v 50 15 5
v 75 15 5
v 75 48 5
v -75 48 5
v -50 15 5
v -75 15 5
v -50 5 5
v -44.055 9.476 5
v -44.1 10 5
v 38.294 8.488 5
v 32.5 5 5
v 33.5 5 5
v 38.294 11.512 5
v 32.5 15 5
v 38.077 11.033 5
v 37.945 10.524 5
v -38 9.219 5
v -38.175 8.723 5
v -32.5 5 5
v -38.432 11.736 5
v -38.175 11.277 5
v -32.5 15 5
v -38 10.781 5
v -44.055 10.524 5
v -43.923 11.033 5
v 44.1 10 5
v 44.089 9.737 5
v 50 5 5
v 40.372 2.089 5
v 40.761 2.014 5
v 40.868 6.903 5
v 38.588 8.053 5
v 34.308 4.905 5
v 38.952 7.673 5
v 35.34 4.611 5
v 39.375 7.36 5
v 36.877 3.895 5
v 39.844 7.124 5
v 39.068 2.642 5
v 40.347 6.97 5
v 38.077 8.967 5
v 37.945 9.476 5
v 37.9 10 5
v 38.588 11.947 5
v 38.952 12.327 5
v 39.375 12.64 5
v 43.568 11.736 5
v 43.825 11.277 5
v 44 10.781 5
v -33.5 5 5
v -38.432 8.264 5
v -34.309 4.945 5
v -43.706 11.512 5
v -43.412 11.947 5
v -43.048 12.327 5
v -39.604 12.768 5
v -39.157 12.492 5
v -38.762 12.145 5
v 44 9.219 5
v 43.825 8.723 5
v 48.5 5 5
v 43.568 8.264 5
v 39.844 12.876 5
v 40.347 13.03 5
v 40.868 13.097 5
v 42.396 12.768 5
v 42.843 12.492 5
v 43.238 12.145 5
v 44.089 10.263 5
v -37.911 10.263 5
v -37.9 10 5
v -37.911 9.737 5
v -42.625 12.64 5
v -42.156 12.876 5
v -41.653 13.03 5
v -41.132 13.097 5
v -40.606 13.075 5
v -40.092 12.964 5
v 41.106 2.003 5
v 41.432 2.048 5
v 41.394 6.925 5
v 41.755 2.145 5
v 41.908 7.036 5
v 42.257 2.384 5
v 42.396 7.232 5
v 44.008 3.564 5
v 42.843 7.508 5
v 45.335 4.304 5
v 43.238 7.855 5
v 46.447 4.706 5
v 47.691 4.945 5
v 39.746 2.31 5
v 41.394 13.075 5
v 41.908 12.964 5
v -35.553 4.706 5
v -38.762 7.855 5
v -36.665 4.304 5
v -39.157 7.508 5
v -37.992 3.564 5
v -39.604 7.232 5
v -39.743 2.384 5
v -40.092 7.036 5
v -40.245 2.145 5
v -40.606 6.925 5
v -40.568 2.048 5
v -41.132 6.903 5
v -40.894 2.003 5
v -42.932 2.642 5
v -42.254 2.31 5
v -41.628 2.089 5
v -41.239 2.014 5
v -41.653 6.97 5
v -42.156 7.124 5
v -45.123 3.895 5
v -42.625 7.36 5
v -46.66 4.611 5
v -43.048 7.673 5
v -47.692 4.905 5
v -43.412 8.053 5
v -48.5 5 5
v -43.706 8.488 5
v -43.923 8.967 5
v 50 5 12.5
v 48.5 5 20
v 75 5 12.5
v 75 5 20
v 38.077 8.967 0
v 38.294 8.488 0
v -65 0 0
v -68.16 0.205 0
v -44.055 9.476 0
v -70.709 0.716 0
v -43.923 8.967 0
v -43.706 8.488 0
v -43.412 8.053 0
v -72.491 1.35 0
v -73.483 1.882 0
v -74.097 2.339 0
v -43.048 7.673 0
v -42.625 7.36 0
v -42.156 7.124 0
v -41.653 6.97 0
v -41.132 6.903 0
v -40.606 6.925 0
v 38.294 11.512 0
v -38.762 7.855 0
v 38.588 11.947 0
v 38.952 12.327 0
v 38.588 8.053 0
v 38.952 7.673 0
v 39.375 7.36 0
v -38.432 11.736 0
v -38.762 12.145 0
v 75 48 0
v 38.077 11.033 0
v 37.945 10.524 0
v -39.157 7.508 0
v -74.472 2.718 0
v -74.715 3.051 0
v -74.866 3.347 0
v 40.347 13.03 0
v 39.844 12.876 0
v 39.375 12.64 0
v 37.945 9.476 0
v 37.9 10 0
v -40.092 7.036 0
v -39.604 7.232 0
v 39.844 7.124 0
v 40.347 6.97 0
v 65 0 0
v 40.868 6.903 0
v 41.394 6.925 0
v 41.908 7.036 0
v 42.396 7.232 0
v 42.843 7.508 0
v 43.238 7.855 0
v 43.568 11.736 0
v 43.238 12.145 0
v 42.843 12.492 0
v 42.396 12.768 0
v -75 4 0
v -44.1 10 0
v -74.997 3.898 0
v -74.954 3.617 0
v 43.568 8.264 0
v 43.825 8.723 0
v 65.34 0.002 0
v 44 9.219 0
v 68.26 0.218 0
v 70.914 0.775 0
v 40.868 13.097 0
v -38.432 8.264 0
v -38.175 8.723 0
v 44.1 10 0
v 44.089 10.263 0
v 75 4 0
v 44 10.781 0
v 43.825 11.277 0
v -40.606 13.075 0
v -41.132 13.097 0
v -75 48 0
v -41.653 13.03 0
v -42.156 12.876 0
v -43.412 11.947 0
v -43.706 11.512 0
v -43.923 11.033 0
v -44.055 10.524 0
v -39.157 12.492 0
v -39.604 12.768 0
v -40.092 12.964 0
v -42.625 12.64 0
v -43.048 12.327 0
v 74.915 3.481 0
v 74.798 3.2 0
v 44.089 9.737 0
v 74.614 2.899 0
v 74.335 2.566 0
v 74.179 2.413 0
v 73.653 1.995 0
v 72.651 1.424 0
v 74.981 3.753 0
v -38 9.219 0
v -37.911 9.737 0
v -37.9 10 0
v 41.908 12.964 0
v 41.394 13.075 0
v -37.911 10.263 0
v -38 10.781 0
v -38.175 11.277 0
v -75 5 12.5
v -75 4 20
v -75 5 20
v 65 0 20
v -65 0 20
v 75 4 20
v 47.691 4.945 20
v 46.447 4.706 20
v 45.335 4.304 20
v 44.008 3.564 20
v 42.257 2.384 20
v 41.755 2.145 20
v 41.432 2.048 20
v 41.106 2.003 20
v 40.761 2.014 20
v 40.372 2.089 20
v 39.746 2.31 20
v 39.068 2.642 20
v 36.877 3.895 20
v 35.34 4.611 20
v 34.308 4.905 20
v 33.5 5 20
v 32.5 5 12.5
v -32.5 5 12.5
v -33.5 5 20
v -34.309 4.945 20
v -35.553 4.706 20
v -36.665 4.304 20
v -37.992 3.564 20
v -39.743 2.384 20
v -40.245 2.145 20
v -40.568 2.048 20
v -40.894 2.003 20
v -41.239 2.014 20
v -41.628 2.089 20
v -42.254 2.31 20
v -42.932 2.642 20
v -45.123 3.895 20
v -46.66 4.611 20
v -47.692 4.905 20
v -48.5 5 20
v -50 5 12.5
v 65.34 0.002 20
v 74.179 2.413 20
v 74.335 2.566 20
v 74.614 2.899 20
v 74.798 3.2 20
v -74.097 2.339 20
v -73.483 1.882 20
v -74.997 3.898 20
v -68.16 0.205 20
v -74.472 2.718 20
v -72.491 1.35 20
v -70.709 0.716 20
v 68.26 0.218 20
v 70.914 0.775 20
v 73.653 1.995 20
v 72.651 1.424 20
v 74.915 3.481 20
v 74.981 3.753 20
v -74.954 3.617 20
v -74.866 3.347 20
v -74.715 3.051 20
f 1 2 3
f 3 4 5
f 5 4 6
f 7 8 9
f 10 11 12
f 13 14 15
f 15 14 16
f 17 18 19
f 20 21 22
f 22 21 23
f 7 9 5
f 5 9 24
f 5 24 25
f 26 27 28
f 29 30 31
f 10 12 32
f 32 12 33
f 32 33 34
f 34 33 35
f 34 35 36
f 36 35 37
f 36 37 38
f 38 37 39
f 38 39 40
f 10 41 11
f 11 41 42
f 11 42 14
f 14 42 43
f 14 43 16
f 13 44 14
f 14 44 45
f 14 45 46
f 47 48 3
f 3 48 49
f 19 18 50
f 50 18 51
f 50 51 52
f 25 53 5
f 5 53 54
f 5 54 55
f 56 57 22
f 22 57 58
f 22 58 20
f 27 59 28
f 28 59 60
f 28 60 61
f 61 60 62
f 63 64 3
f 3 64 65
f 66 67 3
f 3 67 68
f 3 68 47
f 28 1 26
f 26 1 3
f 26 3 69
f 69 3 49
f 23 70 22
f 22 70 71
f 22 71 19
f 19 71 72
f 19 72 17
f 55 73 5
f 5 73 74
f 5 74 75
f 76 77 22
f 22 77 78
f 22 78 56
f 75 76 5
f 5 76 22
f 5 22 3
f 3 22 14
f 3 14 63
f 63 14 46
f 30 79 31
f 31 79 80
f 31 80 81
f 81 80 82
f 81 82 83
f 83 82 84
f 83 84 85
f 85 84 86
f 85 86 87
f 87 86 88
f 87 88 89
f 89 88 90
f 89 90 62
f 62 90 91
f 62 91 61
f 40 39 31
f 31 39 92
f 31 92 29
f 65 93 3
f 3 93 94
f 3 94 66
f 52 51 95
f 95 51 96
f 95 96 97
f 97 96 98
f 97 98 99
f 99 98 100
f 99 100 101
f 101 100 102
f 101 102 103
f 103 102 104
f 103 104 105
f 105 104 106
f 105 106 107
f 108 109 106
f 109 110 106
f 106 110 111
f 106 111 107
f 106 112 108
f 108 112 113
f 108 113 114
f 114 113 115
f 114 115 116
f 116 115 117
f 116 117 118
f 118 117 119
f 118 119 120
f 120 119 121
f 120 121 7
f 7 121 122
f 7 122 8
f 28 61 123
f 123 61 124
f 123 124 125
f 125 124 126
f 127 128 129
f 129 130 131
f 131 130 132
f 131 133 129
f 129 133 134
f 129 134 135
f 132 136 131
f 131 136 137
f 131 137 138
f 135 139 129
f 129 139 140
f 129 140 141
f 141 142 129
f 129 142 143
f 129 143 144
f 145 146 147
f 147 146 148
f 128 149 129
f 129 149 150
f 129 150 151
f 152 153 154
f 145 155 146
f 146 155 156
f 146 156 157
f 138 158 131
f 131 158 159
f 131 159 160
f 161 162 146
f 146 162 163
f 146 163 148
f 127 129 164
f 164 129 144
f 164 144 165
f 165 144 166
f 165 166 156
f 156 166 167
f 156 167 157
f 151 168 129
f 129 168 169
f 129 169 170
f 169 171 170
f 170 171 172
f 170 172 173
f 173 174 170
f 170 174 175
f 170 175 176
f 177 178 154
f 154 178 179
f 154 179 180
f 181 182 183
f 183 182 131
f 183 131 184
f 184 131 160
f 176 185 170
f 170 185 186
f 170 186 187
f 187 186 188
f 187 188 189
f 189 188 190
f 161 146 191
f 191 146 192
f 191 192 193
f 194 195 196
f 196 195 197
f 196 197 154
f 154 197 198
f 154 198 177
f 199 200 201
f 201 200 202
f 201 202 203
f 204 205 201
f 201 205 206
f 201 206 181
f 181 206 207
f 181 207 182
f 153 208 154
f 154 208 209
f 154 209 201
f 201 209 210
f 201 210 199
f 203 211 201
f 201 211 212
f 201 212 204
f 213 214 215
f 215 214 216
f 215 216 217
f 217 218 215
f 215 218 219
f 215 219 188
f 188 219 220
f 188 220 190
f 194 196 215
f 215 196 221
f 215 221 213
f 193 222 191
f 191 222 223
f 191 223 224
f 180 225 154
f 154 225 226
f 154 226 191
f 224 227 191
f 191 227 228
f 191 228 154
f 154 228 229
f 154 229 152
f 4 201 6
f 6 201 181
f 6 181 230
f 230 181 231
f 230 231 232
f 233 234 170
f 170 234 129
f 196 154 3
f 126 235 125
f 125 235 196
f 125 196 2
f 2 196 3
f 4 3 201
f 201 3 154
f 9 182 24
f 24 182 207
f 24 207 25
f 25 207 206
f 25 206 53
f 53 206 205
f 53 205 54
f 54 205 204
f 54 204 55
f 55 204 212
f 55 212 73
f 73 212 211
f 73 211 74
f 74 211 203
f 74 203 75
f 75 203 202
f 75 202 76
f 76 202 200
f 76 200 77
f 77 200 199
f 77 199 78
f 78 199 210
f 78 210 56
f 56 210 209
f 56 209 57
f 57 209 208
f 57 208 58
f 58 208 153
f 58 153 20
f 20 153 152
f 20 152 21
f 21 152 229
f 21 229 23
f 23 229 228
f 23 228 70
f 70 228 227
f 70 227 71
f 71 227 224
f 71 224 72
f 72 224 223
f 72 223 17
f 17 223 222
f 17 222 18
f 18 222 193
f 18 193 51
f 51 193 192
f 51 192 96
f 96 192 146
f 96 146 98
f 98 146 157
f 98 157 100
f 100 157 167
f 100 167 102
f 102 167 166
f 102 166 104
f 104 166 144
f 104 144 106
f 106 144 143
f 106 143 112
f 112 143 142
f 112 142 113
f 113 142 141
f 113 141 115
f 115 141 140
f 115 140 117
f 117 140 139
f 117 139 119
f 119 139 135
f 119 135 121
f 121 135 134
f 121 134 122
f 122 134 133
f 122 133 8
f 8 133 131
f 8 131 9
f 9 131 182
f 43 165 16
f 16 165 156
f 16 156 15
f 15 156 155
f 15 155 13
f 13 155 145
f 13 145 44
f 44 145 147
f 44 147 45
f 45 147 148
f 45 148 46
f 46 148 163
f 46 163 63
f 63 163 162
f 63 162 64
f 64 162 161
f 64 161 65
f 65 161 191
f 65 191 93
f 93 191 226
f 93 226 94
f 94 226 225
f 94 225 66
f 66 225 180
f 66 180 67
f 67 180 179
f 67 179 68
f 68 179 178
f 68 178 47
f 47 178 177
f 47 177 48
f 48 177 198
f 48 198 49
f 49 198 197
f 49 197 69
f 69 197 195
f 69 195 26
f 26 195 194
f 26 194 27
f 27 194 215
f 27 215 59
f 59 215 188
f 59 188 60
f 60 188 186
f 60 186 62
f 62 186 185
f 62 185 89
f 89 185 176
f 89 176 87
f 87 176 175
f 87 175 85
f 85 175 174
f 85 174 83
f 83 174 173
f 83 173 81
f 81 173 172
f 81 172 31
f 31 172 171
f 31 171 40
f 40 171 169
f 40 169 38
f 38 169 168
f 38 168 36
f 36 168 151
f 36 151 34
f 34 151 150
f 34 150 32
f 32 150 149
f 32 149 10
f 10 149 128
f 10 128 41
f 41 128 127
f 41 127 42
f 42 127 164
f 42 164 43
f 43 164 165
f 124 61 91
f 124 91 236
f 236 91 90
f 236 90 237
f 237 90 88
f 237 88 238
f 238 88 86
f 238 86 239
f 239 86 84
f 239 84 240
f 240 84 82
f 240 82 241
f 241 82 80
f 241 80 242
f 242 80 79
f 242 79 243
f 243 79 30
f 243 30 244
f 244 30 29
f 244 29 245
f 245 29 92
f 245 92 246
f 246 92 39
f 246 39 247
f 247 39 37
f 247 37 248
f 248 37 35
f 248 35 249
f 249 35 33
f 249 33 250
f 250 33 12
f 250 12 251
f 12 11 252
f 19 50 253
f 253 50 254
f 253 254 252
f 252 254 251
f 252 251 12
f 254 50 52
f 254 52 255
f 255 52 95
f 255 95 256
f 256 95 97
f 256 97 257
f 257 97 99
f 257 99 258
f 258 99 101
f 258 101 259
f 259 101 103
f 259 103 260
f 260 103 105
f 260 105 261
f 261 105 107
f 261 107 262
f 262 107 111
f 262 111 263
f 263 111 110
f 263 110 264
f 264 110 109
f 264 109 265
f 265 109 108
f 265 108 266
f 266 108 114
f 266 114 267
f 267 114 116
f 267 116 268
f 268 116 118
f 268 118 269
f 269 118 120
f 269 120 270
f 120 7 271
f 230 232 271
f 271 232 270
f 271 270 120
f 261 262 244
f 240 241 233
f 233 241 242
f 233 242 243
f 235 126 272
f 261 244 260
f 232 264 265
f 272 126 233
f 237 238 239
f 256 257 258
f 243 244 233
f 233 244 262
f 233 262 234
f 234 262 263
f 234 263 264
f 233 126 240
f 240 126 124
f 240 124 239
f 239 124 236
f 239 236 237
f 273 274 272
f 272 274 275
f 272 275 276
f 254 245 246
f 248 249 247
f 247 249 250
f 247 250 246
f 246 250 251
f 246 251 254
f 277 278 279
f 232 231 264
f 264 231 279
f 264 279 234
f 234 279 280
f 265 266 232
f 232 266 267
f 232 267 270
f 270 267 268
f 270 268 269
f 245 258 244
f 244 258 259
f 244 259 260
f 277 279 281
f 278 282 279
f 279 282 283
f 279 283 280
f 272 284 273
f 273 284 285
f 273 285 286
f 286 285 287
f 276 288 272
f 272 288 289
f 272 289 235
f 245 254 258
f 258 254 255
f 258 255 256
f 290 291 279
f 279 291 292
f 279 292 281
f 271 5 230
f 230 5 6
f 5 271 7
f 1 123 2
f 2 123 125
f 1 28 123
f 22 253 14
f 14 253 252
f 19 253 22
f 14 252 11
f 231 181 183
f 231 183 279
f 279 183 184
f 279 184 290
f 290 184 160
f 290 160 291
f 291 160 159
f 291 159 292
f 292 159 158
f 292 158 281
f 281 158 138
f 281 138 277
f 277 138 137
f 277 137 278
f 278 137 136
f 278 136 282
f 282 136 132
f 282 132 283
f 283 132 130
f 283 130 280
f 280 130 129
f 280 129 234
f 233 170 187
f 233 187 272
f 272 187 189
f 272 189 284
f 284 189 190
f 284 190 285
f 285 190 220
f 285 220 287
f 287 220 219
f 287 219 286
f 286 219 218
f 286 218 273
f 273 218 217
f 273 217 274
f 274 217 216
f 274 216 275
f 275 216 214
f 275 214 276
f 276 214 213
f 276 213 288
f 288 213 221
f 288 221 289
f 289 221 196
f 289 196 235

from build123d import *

# Parameters (mm, degrees)
SKETCH1_W           = 150
SKETCH1_H           = 48
SKETCH1_R           = 3.1
BOSS_EXTRUDE1_DEPTH = 5
BOSS_EXTRUDE2_DEPTH = 20
BOSS_EXTRUDE3_DEPTH = 25
BOSS_EXTRUDE4_START = -150
BOSS_EXTRUDE4_DEPTH = 25
BOSS_EXTRUDE5_START = -75
BOSS_EXTRUDE5_DEPTH = 32.5
FILLET5_SIZE        = 10
FILLET5_SIZE_2      = 4
FILLET6_SIZE        = 10
FILLET6_SIZE_2      = 4


with BuildPart() as part:
    # Sketch1 → Boss-Extrude1 (new body)
    with BuildSketch(Plane.XY):
        with Locations((0, 24)):
            Rectangle(SKETCH1_W, SKETCH1_H)
        with Locations((-41, 10)):
            Circle(SKETCH1_R, mode=Mode.SUBTRACT)
        with Locations((41, 10)):
            Circle(SKETCH1_R, mode=Mode.SUBTRACT)
    extrude(amount=BOSS_EXTRUDE1_DEPTH)

    # Sketch2 → Boss-Extrude2 (add)
    with BuildSketch(Plane.XY):
        with BuildLine():
            Line((-75, 5), (-75, 0))
            Line((-75, 0), (75, 0))
            Line((75, 0), (75, 5))
            Line((75, 5), (48.5, 5))
            add(Edge.make_bspline(
                [(33.5, 5), (36.476810307, 4.895138539), (41.670990079, -0.895128503), (44.181209535, 4.895118466), (48.5, 5)],
                knots=[0, 0, 0, 0, 0.5, 1, 1, 1, 1], degree=3))
            Line((33.5, 5), (-33.5, 5))
            add(Edge.make_bspline(
                [(-48.5, 5), (-45.523189693, 4.895138539), (-40.329009921, -0.895128503), (-37.818790465, 4.895118466), (-33.5, 5)],
                knots=[0, 0, 0, 0, 0.5, 1, 1, 1, 1], degree=3))
            Line((-48.5, 5), (-75, 5))
        make_face()
    extrude(amount=BOSS_EXTRUDE2_DEPTH)

    # Sketch4 → Boss-Extrude3 (add)
    with BuildSketch(Plane.ZY.offset(75)):
        Polygon((5, 5), (12.5, 5), (5, 15), align=None)
    extrude(amount=-BOSS_EXTRUDE3_DEPTH)

    # Sketch4<2> → Boss-Extrude4 (add)
    with BuildSketch(Plane.ZY.offset(75).offset(BOSS_EXTRUDE4_START)):
        Polygon((5, 5), (12.5, 5), (5, 15), align=None)
    extrude(amount=BOSS_EXTRUDE4_DEPTH)

    # Sketch4<3> → Boss-Extrude5 (add, symmetric)
    with BuildSketch(Plane.ZY.offset(75).offset(BOSS_EXTRUDE5_START)):
        Polygon((5, 5), (12.5, 5), (5, 15), align=None)
    extrude(amount=BOSS_EXTRUDE5_DEPTH, both=True)

    # Fillet5
    # an asymmetric fillet: 10, 4 mm, written as the material it takes off along each edge
    with BuildSketch(Plane(origin=(-75, 0, 45), x_dir=(1, 0, 0), z_dir=(0, 0, -1))) as fillet5_piece_1:
        with BuildLine():
            Bezier((FILLET5_SIZE, 0), (0, 0), (0, -FILLET5_SIZE_2), weights=[1, 0.707106781, 1])
            Line((0, -FILLET5_SIZE_2), (0, 0))
            Line((0, 0), (FILLET5_SIZE, 0))
        make_face()
    extrude(amount=70, mode=Mode.SUBTRACT)

    # Fillet6
    # an asymmetric fillet: 10, 4 mm, written as the material it takes off along each edge
    with BuildSketch(Plane(origin=(75, 0, -25), x_dir=(-1, 0, 0), z_dir=(0, 0, 1))) as fillet6_piece_1:
        with BuildLine():
            Bezier((FILLET6_SIZE, 0), (0, 0), (0, -FILLET6_SIZE_2), weights=[1, 0.707106781, 1])
            Line((0, -FILLET6_SIZE_2), (0, 0))
            Line((0, 0), (FILLET6_SIZE, 0))
        make_face()
    extrude(amount=70, mode=Mode.SUBTRACT)


solid = part.part
